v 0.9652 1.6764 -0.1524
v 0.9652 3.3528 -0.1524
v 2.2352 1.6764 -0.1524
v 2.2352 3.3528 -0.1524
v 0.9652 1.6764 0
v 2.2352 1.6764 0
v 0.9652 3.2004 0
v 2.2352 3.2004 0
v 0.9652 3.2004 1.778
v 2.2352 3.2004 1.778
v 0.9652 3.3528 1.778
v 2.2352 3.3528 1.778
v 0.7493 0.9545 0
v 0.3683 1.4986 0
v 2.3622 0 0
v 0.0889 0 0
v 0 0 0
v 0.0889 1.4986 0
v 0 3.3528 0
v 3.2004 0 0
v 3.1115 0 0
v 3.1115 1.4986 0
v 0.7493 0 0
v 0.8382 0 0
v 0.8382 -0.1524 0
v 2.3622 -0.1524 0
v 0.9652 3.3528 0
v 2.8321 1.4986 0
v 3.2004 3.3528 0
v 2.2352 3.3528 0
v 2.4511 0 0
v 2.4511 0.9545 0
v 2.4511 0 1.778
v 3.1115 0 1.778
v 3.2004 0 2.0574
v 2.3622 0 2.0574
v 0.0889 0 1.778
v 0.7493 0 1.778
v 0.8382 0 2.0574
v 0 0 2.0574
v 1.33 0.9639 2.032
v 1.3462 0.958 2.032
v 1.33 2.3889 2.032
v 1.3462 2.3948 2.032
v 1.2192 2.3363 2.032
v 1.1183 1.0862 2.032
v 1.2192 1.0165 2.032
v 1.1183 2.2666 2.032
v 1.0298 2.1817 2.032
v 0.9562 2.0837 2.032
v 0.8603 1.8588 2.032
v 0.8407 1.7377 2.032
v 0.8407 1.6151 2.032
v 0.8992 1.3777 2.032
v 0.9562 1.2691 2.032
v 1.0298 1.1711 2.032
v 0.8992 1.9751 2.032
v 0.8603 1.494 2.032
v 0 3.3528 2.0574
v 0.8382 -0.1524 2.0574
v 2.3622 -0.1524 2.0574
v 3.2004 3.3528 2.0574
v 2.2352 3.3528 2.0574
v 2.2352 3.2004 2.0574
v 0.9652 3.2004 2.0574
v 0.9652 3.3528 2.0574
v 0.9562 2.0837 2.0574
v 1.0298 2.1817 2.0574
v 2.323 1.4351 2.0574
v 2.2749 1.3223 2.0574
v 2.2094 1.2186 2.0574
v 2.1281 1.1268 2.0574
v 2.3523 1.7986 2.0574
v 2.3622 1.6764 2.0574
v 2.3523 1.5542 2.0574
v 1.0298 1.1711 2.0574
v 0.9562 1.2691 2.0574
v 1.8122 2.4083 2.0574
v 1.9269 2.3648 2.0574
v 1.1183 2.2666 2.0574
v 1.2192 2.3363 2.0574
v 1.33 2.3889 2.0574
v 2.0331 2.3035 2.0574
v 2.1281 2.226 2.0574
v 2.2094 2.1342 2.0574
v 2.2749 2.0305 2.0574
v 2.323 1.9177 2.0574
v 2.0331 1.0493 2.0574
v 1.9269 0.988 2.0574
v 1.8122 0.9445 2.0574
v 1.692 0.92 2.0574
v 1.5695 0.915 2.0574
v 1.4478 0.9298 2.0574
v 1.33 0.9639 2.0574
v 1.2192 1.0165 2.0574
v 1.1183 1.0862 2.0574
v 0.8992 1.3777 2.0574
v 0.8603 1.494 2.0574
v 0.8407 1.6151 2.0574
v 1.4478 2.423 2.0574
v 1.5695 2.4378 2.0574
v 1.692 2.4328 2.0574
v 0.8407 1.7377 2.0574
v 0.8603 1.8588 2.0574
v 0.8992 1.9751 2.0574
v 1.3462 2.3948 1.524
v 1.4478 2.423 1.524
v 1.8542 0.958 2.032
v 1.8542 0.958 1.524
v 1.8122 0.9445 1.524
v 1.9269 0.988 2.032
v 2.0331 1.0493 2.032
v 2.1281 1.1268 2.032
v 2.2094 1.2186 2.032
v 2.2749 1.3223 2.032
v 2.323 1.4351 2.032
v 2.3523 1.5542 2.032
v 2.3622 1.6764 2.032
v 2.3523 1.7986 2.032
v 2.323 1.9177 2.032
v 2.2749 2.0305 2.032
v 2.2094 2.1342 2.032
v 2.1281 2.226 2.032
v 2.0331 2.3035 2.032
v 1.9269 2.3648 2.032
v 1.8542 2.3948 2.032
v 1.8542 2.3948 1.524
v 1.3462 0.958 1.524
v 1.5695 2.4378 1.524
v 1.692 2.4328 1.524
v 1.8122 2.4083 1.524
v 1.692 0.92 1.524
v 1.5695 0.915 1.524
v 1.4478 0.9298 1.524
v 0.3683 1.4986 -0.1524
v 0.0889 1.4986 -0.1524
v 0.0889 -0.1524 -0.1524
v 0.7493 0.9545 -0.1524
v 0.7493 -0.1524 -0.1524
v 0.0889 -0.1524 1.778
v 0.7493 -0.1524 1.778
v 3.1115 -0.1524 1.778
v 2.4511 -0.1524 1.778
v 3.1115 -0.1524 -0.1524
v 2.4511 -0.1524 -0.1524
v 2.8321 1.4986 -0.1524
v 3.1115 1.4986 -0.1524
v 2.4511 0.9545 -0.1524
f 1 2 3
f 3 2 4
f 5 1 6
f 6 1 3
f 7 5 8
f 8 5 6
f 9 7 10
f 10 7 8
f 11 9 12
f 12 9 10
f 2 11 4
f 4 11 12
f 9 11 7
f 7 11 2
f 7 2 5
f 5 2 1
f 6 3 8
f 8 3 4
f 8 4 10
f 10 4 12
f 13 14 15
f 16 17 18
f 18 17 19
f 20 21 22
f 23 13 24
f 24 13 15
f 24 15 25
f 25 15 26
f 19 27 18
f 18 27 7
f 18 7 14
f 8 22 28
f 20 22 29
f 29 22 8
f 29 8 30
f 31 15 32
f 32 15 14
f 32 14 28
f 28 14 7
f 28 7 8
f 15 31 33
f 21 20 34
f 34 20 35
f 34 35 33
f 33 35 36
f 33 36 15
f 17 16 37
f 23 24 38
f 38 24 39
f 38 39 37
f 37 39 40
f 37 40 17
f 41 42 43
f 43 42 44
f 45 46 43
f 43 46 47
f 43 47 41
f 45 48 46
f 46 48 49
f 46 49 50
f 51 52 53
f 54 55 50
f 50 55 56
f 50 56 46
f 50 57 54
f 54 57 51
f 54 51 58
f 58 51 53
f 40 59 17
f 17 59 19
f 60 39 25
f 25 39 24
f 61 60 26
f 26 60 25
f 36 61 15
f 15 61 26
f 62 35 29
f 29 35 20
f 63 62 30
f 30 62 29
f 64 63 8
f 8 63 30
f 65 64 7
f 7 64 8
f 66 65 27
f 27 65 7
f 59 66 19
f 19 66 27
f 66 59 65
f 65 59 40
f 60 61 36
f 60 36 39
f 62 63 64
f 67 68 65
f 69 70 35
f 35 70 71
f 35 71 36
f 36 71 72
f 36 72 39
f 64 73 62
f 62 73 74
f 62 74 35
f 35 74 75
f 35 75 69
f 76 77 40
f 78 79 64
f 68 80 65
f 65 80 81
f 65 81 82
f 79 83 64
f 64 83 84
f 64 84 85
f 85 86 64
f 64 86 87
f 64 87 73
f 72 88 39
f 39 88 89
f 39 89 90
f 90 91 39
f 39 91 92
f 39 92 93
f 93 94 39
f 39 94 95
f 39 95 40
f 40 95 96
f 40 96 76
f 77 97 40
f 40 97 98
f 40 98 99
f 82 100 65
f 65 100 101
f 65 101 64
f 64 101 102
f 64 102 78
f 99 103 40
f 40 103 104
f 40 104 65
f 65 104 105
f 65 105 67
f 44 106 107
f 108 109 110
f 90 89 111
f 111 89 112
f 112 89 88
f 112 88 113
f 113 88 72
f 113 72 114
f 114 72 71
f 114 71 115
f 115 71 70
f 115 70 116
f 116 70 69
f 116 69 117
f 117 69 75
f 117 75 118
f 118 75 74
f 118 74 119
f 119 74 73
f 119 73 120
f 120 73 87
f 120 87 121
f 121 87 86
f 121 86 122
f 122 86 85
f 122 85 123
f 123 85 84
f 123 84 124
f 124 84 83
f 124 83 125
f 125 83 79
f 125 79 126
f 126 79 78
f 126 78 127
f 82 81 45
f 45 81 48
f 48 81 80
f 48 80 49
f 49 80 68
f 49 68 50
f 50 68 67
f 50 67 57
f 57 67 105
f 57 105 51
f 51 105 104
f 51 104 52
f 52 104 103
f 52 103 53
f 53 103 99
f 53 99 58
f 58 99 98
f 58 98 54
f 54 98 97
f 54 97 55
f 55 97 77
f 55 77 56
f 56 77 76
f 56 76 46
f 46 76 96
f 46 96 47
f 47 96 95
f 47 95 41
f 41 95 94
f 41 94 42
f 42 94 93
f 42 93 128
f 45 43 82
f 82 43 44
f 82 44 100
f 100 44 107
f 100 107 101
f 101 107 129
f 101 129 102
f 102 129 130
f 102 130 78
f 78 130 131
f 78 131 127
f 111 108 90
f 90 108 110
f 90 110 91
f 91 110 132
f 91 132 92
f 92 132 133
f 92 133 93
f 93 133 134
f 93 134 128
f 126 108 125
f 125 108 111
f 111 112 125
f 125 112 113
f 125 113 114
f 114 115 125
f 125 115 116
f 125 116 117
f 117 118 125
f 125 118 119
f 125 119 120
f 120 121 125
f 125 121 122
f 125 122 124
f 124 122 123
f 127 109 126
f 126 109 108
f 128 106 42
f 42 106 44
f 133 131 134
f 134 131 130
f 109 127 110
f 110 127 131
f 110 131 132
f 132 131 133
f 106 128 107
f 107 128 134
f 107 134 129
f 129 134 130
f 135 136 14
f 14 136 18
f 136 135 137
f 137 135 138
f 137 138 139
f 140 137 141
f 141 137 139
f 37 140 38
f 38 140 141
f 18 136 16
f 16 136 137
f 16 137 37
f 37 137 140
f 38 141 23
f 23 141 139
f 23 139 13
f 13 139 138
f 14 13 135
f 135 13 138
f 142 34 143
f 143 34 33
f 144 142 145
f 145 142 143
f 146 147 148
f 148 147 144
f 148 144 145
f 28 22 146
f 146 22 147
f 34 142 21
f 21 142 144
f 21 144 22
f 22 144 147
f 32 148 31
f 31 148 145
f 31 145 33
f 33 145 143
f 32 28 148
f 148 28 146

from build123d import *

# Parameters (mm, degrees)
BOSS_EXTRUDE1_DEPTH       = 2.0574
SKETCH2_R                 = 0.762
CUT_EXTRUDE1_DEPTH        = 0.0254
CUT_EXTRUDE2_DEPTH        = 0.508
EXTRUDE_THIN1_DEPTH       = 0.635
EXTRUDE_THIN6_DEPTH       = 0.3302
CHAMFER1_SIZE             = 0.381
CHAMFER1_SIZE2            = 0.544124391
CHAMFER1_OF_MIRROR1_SIZE2 = 0.544124391
CHAMFER1_OF_MIRROR1_SIZE  = 0.381


with BuildPart() as part:
    # Sketch1 → Boss-Extrude1 (new body)
    with BuildSketch(Plane.XY):
        Polygon((0, 0), (0.8382, 0), (0.8382, -0.1524), (2.3622, -0.1524), (2.3622, 0), (3.2004, 0), (3.2004, 3.3528), (2.2352, 3.3528), (2.2352, 3.2004), (0.9652, 3.2004), (0.9652, 3.3528), (0, 3.3528), align=None)
    extrude(amount=BOSS_EXTRUDE1_DEPTH)

    # Sketch2 → Cut-Extrude1 (cut)
    with BuildSketch(Plane.XY.offset(2.0574)):
        with Locations((1.6002, 1.6764)):
            Circle(SKETCH2_R)
    extrude(amount=-CUT_EXTRUDE1_DEPTH, mode=Mode.SUBTRACT)

    # Sketch3 → Cut-Extrude2 (cut)
    with BuildSketch(Plane.XY.offset(2.032)):
        with BuildLine():
            Line((1.3462, 2.39482049), (1.3462, 0.95797951))
            ThreePointArc((1.3462, 0.95797951), (1.6002, 0.9144), (1.8542, 0.95797951))
            Line((1.8542, 0.95797951), (1.8542, 2.39482049))
            ThreePointArc((1.8542, 2.39482049), (1.6002, 2.4384), (1.3462, 2.39482049))
        make_face()
    extrude(amount=-CUT_EXTRUDE2_DEPTH, mode=Mode.SUBTRACT)

    # Sketch8 → Extrude-Thin6 (add, symmetric)
    with BuildSketch(Plane.ZY.offset(-0.4191)):
        Polygon((1.778, 0), (0, 0), (0, 1.4986), (-0.1524, 1.4986), (-0.1524, -0.1524), (1.778, -0.1524), align=None)
    extrude_thin6 = extrude(amount=EXTRUDE_THIN6_DEPTH, both=True)

    # Chamfer1
    chamfer1_edges = [part.edges().sort_by_distance(p)[0] for p in [
        (0.7493, 1.4986, -0.0762),
    ]]
    chamfer1_side = [part.faces().sort_by_distance(p)[0] for p in [
        (0.4191, 1.4986, -0.0762),
    ]]
    chamfer(chamfer1_edges, length=CHAMFER1_SIZE, length2=CHAMFER1_SIZE2, reference=chamfer1_side[0])

    # Mirror1: Extrude-Thin6 across plane
    add(extrude_thin6.mirror(Plane.ZY.offset(-1.6002)))

    # Chamfer1 of Mirror1
    chamfer1_of_mirror1_edges = [part.edges().sort_by_distance(p)[0] for p in [
        (2.4511, 1.4986, -0.0762),
    ]]
    chamfer(chamfer1_of_mirror1_edges, length=CHAMFER1_OF_MIRROR1_SIZE, length2=CHAMFER1_OF_MIRROR1_SIZE2)


with BuildPart() as body_2:
    # Sketch5 → Extrude-Thin1 (new body, symmetric)
    with BuildSketch(Plane.ZY.offset(-1.6002)):
        Polygon((1.778, 3.2004), (0, 3.2004), (0, 1.6764), (-0.1524, 1.6764), (-0.1524, 3.3528), (1.778, 3.3528), align=None)
    extrude(amount=EXTRUDE_THIN1_DEPTH, both=True)


solid = Compound([part.part, body_2.part])
